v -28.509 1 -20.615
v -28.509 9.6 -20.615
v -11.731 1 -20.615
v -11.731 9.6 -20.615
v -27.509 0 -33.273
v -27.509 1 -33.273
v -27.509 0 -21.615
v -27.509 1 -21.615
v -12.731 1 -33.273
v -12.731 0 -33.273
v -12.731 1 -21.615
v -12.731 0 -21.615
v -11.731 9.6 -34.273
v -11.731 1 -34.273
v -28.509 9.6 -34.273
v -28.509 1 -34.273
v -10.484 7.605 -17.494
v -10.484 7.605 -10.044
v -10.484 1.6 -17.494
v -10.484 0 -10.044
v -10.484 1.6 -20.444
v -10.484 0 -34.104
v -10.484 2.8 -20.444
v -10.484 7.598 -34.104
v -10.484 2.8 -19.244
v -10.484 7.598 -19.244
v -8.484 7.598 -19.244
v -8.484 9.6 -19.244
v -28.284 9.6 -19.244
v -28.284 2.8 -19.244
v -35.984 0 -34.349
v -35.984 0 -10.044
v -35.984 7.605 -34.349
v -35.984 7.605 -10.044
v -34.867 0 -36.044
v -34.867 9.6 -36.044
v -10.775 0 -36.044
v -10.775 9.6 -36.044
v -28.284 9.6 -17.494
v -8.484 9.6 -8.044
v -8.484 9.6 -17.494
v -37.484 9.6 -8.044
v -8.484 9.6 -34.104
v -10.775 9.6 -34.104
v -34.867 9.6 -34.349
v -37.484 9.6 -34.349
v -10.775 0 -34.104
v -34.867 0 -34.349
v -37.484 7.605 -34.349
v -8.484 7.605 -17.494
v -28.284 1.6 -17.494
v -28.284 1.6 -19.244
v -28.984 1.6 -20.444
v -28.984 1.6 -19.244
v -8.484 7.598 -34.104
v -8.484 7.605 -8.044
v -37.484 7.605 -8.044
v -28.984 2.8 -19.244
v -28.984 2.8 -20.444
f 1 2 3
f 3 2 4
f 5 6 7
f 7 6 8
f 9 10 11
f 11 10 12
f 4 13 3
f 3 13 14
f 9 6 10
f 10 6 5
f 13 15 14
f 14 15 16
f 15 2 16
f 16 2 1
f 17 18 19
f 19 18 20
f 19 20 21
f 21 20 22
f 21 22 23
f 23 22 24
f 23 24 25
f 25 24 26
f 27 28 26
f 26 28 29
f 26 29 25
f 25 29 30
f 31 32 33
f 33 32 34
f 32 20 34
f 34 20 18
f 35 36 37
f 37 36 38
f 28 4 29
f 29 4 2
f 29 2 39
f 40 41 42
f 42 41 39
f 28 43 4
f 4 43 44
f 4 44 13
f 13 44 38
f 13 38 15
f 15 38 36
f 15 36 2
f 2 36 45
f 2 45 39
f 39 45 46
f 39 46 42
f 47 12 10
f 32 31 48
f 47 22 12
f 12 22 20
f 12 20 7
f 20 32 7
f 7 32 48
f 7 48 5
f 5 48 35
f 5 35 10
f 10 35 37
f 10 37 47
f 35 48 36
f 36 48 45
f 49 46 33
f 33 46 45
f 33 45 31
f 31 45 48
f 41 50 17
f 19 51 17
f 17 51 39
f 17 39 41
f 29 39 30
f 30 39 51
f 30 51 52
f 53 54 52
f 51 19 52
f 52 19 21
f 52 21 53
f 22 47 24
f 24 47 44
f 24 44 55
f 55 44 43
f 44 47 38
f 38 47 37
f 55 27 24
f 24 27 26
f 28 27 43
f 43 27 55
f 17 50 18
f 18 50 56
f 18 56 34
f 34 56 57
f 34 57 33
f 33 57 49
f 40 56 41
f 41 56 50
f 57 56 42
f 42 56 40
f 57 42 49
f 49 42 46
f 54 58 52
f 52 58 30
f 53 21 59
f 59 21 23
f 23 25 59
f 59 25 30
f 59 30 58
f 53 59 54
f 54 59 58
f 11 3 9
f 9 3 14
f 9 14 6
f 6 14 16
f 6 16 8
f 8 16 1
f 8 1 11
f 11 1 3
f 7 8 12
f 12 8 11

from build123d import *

# Parameters (mm, degrees)
SKETCH4_W                = 25.5
SKETCH4_H                = 26
BOSS_EXTRUDE6_DEPTH      = 9.6
SKETCH17_W               = 1.117177271
SKETCH17_H               = 1.695527899
CUT_EXTRUDE3_DEPTH       = 9.6
SKETCH18_W               = 17.800407573
SKETCH18_H               = 1.75
CUT_EXTRUDE10_DEPTH      = 8
SKETCH20_W               = 16.77875935
SKETCH20_H               = 13.657573424
CUT_EXTRUDE13_DEPTH      = 10.5
SKETCH21_W               = 0.291364414
SKETCH21_H               = 1.940061713
CUT_EXTRUDE14_DEPTH      = 10.5
SKETCH22_W               = 14.860187615
SKETCH22_H               = 2.002394184
BOSS_EXTRUDE7_DEPTH      = 2
SKETCH23_W               = 7.449750672
SKETCH23_H               = 1.995003107
BOSS_EXTRUDE8_DEPTH      = 2
SKETCH24_W               = 27.5
SKETCH24_H               = 1.995003107
BOSS_EXTRUDE9_DEPTH      = 2
SKETCH25_W               = 26.3044721
SKETCH25_H               = 1.995003107
BOSS_EXTRUDE10_DEPTH     = 1.5
SKETCH19_W               = 1.2
SKETCH19_H               = 1.2
CUT_EXTRUDE15_DEPTH      = 3
CUT_EXTRUDE15_DEPTH_BACK = 18.5
SKETCH26_W               = 13.657573424
SKETCH26_H               = 1
BOSS_EXTRUDE11_DEPTH     = 1
SKETCH27_W               = 15.77875935
SKETCH27_H               = 1
BOSS_EXTRUDE12_DEPTH     = 1
SKETCH28_W               = 12.657573424
SKETCH28_H               = 1
BOSS_EXTRUDE13_DEPTH     = 1
SKETCH29_W               = 14.77875935
SKETCH29_H               = 1
BOSS_EXTRUDE14_DEPTH     = 1


with BuildPart() as part:
    # Sketch4 → Boss-Extrude6 (new body)
    with BuildSketch(Plane(origin=(-9.896990102, 0, -25.516417911), x_dir=(1, 0, 0), z_dir=(0, 1, 0))):
        with Locations((-13.336718814, -2.472262581)):
            Rectangle(SKETCH4_W, SKETCH4_H)
    extrude(amount=BOSS_EXTRUDE6_DEPTH)

    # Sketch17 → Cut-Extrude3 (cut)
    with BuildSketch(Plane(origin=(-9.896990102, 9.6, -25.516417911), x_dir=(1, 0, 0), z_dir=(0, 1, 0))):
        with Locations((-25.528130178, 9.67997347)):
            Rectangle(SKETCH17_W, SKETCH17_H)
    extrude(amount=-CUT_EXTRUDE3_DEPTH, mode=Mode.SUBTRACT)

    # Sketch18 → Cut-Extrude10 (cut)
    with BuildSketch(Plane(origin=(-9.896990102, 9.6, -25.516417911), x_dir=(1, 0, 0), z_dir=(0, 1, 0))):
        with Locations((-9.486922601, -7.147511908)):
            Rectangle(SKETCH18_W, SKETCH18_H)
    extrude(amount=-CUT_EXTRUDE10_DEPTH, mode=Mode.SUBTRACT)

    # Sketch20 → Cut-Extrude13 (cut)
    with BuildSketch(Plane(origin=(0, 9.6, -0.078786712), x_dir=(1, 0, 0), z_dir=(0, 1, 0))):
        with Locations((-20.120068773, 27.365205119)):
            Rectangle(SKETCH20_W, SKETCH20_H)
    extrude(amount=-CUT_EXTRUDE13_DEPTH, mode=Mode.SUBTRACT)

    # Sketch21 → Cut-Extrude14 (cut)
    with BuildSketch(Plane(origin=(0, 9.6, 0), x_dir=(1, 0, 0), z_dir=(0, 1, 0))):
        with Locations((-10.629391123, 35.074124474)):
            Rectangle(SKETCH21_W, SKETCH21_H)
    extrude(amount=-CUT_EXTRUDE14_DEPTH, mode=Mode.SUBTRACT)

    # Sketch22 → Boss-Extrude7 (add)
    with BuildSketch(Plane(origin=(-10.483708916, 0, 0), x_dir=(0, 0, -1), z_dir=(1, 0, 0))):
        with Locations((26.67399981, 8.598802908)):
            Rectangle(SKETCH22_W, SKETCH22_H)
    extrude(amount=BOSS_EXTRUDE7_DEPTH)

    # Sketch23 → Boss-Extrude8 (add)
    with BuildSketch(Plane(origin=(-10.483708916, 0, 0), x_dir=(0, 0, -1), z_dir=(1, 0, 0))):
        with Locations((13.769030667, 8.602498447)):
            Rectangle(SKETCH23_W, SKETCH23_H)
    extrude(amount=BOSS_EXTRUDE8_DEPTH)

    # Sketch24 → Boss-Extrude9 (add)
    with BuildSketch(Plane.XY.offset(-10.044155331)):
        with Locations((-22.233708916, 8.602498447)):
            Rectangle(SKETCH24_W, SKETCH24_H)
    extrude(amount=BOSS_EXTRUDE9_DEPTH)

    # Sketch25 → Boss-Extrude10 (add)
    with BuildSketch(Plane.ZY.offset(35.983708916)):
        with Locations((-21.196391381, 8.602498447)):
            Rectangle(SKETCH25_W, SKETCH25_H)
    extrude(amount=BOSS_EXTRUDE10_DEPTH)

    # Sketch19 → Cut-Extrude15 (cut, two sides)
    with BuildSketch(Plane(origin=(-10.483708916, 0, 0), x_dir=(0, 0, -1), z_dir=(1, 0, 0))) as cut_extrude15_sk:
        with Locations((19.843906003, 2.2)):
            Rectangle(SKETCH19_W, SKETCH19_H)
    extrude(amount=CUT_EXTRUDE15_DEPTH, mode=Mode.SUBTRACT)
    extrude(cut_extrude15_sk.sketch, amount=-CUT_EXTRUDE15_DEPTH_BACK, mode=Mode.SUBTRACT)

    # Sketch26 → Boss-Extrude11 (add)
    with BuildSketch(Plane(origin=(-28.509448448, 0, -0.078786712), x_dir=(0, 0, -1), z_dir=(1, 0, 0))):
        with Locations((27.365205119, 0.5)):
            Rectangle(SKETCH26_W, SKETCH26_H)
    extrude(amount=BOSS_EXTRUDE11_DEPTH)

    # Sketch27 → Boss-Extrude12 (add)
    with BuildSketch(Plane.XY.offset(-34.272778542)):
        with Locations((-19.620068773, 0.5)):
            Rectangle(SKETCH27_W, SKETCH27_H)
    extrude(amount=BOSS_EXTRUDE12_DEPTH)

    # Sketch28 → Boss-Extrude13 (add)
    with BuildSketch(Plane(origin=(-11.730689098, 0, -0.078786712), x_dir=(0, 0, 1), z_dir=(-1, 0, 0))):
        with Locations((-26.865205119, 0.5)):
            Rectangle(SKETCH28_W, SKETCH28_H)
    extrude(amount=BOSS_EXTRUDE13_DEPTH)

    # Sketch29 → Boss-Extrude14 (add)
    with BuildSketch(Plane(origin=(0, 0, -20.615205119), x_dir=(-1, 0, 0), z_dir=(0, 0, -1))):
        with Locations((20.120068773, 0.5)):
            Rectangle(SKETCH29_W, SKETCH29_H)
    extrude(amount=BOSS_EXTRUDE14_DEPTH)


solid = part.part
